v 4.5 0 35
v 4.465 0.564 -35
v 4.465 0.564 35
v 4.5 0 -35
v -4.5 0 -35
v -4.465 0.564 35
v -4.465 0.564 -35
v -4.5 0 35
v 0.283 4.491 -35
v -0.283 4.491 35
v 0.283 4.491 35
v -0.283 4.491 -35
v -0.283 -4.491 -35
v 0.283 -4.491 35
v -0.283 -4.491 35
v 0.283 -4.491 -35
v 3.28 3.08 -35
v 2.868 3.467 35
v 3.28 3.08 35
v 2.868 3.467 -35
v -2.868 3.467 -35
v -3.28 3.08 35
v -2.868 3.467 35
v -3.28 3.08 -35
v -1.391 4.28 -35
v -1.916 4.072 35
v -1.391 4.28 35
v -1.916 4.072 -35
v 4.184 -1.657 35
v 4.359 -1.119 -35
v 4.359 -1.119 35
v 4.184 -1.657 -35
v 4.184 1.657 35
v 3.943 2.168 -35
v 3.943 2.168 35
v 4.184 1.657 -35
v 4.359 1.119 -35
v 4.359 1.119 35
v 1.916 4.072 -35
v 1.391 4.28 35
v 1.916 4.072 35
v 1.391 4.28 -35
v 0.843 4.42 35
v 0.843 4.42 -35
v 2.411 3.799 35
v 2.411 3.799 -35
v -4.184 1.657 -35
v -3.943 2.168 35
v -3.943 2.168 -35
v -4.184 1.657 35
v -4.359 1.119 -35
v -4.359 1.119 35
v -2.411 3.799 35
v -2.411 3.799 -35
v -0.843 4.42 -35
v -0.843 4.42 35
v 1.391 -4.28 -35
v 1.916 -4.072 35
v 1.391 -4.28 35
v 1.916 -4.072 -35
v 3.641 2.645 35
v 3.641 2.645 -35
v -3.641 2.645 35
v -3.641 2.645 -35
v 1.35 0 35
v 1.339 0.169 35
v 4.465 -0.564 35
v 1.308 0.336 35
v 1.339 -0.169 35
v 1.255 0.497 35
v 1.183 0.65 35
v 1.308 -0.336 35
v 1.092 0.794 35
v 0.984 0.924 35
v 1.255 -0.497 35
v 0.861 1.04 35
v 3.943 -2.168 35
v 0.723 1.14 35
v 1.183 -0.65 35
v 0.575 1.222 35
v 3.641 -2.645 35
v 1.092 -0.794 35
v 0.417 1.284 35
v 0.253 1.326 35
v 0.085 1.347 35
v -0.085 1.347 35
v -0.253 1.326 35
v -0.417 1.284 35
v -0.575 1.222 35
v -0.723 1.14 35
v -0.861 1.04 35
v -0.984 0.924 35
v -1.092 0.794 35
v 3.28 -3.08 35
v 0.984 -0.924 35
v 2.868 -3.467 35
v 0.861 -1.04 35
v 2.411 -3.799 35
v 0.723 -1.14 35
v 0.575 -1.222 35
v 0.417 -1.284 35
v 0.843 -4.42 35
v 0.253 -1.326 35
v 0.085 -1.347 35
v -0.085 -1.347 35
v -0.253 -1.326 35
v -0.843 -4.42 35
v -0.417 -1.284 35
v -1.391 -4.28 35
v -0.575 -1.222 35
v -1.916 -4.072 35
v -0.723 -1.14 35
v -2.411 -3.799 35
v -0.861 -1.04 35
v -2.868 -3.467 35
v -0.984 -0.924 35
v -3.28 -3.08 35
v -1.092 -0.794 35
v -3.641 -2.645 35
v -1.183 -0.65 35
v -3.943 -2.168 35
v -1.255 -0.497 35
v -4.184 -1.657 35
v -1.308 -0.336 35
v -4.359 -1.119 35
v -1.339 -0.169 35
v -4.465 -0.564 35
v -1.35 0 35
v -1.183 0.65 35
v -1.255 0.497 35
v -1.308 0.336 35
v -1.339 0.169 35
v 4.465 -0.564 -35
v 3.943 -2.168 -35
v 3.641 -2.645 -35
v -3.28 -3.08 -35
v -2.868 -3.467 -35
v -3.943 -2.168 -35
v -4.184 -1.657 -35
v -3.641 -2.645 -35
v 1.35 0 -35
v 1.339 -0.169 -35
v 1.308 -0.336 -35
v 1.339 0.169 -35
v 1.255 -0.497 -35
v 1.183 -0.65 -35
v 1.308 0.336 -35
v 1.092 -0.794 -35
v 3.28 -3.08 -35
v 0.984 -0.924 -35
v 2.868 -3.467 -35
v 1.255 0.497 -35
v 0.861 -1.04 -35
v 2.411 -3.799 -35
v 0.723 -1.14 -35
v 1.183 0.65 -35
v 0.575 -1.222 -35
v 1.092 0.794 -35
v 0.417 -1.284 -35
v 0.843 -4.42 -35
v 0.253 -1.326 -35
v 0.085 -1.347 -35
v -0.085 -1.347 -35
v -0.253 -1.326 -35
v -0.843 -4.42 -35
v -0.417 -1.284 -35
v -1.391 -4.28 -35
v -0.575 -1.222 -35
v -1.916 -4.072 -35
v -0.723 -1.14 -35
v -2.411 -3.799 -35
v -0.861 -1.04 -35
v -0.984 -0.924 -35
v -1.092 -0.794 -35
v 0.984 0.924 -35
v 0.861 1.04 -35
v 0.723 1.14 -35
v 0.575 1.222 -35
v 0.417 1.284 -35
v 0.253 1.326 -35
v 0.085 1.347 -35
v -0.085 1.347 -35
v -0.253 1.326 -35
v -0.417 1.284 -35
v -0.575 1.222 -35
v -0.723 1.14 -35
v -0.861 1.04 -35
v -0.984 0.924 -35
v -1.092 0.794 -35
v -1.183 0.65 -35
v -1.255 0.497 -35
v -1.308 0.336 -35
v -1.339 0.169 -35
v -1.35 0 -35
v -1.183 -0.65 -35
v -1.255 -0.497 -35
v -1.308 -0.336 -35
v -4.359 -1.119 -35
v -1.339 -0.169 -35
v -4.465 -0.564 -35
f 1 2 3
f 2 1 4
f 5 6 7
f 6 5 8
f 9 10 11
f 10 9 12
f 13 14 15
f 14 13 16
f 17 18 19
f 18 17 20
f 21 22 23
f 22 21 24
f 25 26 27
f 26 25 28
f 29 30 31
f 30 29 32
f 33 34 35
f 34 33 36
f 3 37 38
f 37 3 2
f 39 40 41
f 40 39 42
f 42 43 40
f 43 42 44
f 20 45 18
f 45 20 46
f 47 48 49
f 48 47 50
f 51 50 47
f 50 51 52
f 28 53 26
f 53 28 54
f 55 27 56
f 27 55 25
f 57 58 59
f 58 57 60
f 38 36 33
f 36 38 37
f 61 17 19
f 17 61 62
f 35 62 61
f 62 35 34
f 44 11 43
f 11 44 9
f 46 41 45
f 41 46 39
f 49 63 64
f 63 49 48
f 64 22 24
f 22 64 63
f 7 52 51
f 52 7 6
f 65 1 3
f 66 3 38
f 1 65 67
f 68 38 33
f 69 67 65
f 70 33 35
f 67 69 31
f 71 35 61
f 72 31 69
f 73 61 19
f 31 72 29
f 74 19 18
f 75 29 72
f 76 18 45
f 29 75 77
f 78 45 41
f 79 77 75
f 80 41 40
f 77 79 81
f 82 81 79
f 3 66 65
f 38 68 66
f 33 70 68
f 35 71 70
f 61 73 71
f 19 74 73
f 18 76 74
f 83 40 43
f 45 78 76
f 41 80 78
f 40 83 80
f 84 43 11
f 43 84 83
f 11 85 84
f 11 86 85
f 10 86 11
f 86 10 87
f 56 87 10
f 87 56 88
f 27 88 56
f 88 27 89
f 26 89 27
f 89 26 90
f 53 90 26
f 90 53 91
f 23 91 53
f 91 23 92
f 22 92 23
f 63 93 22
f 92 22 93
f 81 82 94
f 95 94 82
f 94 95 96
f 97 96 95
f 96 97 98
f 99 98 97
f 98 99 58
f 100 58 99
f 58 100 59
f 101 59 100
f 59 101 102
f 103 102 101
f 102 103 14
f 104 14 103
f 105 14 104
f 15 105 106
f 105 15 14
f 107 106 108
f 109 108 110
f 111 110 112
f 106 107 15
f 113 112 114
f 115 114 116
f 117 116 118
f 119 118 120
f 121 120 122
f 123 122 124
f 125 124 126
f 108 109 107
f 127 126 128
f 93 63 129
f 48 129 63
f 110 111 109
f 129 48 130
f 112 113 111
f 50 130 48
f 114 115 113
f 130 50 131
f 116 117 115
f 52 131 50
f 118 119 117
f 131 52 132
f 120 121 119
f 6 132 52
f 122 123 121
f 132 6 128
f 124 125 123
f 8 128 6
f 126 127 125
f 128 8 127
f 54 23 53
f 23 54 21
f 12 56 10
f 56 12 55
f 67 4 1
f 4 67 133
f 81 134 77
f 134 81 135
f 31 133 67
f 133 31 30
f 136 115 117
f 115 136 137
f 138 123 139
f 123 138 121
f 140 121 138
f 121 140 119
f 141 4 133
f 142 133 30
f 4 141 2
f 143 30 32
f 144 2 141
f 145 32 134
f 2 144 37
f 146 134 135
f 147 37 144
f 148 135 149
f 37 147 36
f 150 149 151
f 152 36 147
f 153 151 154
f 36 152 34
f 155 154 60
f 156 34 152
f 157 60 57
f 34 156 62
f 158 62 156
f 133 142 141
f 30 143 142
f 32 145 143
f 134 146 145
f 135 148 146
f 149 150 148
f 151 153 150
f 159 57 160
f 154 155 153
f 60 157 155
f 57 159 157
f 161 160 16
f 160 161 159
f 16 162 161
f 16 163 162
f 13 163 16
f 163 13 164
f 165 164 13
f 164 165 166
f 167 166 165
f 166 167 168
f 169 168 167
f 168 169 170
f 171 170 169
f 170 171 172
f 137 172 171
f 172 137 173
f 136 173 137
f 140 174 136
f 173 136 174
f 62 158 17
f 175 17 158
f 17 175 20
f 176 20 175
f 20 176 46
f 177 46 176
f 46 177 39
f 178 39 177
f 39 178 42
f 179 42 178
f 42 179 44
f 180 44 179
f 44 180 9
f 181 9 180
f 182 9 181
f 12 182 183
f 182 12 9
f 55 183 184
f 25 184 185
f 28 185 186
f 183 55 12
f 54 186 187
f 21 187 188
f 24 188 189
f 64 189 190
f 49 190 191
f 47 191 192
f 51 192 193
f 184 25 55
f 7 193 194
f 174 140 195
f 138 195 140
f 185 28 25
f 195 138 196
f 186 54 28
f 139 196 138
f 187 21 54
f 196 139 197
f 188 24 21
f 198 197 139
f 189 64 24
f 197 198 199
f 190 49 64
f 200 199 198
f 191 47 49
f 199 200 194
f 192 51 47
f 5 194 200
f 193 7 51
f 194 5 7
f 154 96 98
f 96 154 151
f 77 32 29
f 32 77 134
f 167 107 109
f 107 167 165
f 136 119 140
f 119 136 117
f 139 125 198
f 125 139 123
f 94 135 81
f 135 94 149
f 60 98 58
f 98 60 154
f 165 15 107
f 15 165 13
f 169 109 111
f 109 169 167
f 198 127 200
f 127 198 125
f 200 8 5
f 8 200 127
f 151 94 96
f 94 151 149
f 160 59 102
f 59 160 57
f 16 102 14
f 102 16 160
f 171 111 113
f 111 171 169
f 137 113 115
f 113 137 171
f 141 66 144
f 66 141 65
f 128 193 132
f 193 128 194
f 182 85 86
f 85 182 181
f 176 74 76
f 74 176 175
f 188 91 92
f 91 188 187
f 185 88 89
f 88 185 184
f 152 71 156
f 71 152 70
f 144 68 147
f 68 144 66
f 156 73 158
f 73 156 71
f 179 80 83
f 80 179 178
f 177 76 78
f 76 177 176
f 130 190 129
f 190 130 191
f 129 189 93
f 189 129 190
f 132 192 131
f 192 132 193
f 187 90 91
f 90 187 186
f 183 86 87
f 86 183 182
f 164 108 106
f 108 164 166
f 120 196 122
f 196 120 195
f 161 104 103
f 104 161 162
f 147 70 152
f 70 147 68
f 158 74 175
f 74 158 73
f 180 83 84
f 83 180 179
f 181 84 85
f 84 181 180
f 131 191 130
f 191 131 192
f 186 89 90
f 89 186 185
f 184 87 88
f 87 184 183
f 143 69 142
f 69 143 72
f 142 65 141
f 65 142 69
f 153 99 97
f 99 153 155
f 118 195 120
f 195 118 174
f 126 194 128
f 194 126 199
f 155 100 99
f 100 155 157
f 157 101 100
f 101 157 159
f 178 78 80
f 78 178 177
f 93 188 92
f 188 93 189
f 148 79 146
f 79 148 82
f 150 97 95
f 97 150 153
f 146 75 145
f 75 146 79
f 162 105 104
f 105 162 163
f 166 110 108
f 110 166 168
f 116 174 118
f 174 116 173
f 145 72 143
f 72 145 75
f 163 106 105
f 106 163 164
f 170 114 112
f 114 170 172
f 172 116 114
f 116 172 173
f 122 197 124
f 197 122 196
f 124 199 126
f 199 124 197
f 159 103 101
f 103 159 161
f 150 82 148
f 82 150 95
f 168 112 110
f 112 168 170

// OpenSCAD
$fn = 50;


difference() {
	union() {
		translate(v = [0, 0, -35.0000000000]) {
			cylinder(h = 70, r = 4.5000000000);
		}
	}
	union() {
		translate(v = [0, 0, -100.0000000000]) {
			cylinder(h = 200, r = 1.3500000000);
		}
	}
}
